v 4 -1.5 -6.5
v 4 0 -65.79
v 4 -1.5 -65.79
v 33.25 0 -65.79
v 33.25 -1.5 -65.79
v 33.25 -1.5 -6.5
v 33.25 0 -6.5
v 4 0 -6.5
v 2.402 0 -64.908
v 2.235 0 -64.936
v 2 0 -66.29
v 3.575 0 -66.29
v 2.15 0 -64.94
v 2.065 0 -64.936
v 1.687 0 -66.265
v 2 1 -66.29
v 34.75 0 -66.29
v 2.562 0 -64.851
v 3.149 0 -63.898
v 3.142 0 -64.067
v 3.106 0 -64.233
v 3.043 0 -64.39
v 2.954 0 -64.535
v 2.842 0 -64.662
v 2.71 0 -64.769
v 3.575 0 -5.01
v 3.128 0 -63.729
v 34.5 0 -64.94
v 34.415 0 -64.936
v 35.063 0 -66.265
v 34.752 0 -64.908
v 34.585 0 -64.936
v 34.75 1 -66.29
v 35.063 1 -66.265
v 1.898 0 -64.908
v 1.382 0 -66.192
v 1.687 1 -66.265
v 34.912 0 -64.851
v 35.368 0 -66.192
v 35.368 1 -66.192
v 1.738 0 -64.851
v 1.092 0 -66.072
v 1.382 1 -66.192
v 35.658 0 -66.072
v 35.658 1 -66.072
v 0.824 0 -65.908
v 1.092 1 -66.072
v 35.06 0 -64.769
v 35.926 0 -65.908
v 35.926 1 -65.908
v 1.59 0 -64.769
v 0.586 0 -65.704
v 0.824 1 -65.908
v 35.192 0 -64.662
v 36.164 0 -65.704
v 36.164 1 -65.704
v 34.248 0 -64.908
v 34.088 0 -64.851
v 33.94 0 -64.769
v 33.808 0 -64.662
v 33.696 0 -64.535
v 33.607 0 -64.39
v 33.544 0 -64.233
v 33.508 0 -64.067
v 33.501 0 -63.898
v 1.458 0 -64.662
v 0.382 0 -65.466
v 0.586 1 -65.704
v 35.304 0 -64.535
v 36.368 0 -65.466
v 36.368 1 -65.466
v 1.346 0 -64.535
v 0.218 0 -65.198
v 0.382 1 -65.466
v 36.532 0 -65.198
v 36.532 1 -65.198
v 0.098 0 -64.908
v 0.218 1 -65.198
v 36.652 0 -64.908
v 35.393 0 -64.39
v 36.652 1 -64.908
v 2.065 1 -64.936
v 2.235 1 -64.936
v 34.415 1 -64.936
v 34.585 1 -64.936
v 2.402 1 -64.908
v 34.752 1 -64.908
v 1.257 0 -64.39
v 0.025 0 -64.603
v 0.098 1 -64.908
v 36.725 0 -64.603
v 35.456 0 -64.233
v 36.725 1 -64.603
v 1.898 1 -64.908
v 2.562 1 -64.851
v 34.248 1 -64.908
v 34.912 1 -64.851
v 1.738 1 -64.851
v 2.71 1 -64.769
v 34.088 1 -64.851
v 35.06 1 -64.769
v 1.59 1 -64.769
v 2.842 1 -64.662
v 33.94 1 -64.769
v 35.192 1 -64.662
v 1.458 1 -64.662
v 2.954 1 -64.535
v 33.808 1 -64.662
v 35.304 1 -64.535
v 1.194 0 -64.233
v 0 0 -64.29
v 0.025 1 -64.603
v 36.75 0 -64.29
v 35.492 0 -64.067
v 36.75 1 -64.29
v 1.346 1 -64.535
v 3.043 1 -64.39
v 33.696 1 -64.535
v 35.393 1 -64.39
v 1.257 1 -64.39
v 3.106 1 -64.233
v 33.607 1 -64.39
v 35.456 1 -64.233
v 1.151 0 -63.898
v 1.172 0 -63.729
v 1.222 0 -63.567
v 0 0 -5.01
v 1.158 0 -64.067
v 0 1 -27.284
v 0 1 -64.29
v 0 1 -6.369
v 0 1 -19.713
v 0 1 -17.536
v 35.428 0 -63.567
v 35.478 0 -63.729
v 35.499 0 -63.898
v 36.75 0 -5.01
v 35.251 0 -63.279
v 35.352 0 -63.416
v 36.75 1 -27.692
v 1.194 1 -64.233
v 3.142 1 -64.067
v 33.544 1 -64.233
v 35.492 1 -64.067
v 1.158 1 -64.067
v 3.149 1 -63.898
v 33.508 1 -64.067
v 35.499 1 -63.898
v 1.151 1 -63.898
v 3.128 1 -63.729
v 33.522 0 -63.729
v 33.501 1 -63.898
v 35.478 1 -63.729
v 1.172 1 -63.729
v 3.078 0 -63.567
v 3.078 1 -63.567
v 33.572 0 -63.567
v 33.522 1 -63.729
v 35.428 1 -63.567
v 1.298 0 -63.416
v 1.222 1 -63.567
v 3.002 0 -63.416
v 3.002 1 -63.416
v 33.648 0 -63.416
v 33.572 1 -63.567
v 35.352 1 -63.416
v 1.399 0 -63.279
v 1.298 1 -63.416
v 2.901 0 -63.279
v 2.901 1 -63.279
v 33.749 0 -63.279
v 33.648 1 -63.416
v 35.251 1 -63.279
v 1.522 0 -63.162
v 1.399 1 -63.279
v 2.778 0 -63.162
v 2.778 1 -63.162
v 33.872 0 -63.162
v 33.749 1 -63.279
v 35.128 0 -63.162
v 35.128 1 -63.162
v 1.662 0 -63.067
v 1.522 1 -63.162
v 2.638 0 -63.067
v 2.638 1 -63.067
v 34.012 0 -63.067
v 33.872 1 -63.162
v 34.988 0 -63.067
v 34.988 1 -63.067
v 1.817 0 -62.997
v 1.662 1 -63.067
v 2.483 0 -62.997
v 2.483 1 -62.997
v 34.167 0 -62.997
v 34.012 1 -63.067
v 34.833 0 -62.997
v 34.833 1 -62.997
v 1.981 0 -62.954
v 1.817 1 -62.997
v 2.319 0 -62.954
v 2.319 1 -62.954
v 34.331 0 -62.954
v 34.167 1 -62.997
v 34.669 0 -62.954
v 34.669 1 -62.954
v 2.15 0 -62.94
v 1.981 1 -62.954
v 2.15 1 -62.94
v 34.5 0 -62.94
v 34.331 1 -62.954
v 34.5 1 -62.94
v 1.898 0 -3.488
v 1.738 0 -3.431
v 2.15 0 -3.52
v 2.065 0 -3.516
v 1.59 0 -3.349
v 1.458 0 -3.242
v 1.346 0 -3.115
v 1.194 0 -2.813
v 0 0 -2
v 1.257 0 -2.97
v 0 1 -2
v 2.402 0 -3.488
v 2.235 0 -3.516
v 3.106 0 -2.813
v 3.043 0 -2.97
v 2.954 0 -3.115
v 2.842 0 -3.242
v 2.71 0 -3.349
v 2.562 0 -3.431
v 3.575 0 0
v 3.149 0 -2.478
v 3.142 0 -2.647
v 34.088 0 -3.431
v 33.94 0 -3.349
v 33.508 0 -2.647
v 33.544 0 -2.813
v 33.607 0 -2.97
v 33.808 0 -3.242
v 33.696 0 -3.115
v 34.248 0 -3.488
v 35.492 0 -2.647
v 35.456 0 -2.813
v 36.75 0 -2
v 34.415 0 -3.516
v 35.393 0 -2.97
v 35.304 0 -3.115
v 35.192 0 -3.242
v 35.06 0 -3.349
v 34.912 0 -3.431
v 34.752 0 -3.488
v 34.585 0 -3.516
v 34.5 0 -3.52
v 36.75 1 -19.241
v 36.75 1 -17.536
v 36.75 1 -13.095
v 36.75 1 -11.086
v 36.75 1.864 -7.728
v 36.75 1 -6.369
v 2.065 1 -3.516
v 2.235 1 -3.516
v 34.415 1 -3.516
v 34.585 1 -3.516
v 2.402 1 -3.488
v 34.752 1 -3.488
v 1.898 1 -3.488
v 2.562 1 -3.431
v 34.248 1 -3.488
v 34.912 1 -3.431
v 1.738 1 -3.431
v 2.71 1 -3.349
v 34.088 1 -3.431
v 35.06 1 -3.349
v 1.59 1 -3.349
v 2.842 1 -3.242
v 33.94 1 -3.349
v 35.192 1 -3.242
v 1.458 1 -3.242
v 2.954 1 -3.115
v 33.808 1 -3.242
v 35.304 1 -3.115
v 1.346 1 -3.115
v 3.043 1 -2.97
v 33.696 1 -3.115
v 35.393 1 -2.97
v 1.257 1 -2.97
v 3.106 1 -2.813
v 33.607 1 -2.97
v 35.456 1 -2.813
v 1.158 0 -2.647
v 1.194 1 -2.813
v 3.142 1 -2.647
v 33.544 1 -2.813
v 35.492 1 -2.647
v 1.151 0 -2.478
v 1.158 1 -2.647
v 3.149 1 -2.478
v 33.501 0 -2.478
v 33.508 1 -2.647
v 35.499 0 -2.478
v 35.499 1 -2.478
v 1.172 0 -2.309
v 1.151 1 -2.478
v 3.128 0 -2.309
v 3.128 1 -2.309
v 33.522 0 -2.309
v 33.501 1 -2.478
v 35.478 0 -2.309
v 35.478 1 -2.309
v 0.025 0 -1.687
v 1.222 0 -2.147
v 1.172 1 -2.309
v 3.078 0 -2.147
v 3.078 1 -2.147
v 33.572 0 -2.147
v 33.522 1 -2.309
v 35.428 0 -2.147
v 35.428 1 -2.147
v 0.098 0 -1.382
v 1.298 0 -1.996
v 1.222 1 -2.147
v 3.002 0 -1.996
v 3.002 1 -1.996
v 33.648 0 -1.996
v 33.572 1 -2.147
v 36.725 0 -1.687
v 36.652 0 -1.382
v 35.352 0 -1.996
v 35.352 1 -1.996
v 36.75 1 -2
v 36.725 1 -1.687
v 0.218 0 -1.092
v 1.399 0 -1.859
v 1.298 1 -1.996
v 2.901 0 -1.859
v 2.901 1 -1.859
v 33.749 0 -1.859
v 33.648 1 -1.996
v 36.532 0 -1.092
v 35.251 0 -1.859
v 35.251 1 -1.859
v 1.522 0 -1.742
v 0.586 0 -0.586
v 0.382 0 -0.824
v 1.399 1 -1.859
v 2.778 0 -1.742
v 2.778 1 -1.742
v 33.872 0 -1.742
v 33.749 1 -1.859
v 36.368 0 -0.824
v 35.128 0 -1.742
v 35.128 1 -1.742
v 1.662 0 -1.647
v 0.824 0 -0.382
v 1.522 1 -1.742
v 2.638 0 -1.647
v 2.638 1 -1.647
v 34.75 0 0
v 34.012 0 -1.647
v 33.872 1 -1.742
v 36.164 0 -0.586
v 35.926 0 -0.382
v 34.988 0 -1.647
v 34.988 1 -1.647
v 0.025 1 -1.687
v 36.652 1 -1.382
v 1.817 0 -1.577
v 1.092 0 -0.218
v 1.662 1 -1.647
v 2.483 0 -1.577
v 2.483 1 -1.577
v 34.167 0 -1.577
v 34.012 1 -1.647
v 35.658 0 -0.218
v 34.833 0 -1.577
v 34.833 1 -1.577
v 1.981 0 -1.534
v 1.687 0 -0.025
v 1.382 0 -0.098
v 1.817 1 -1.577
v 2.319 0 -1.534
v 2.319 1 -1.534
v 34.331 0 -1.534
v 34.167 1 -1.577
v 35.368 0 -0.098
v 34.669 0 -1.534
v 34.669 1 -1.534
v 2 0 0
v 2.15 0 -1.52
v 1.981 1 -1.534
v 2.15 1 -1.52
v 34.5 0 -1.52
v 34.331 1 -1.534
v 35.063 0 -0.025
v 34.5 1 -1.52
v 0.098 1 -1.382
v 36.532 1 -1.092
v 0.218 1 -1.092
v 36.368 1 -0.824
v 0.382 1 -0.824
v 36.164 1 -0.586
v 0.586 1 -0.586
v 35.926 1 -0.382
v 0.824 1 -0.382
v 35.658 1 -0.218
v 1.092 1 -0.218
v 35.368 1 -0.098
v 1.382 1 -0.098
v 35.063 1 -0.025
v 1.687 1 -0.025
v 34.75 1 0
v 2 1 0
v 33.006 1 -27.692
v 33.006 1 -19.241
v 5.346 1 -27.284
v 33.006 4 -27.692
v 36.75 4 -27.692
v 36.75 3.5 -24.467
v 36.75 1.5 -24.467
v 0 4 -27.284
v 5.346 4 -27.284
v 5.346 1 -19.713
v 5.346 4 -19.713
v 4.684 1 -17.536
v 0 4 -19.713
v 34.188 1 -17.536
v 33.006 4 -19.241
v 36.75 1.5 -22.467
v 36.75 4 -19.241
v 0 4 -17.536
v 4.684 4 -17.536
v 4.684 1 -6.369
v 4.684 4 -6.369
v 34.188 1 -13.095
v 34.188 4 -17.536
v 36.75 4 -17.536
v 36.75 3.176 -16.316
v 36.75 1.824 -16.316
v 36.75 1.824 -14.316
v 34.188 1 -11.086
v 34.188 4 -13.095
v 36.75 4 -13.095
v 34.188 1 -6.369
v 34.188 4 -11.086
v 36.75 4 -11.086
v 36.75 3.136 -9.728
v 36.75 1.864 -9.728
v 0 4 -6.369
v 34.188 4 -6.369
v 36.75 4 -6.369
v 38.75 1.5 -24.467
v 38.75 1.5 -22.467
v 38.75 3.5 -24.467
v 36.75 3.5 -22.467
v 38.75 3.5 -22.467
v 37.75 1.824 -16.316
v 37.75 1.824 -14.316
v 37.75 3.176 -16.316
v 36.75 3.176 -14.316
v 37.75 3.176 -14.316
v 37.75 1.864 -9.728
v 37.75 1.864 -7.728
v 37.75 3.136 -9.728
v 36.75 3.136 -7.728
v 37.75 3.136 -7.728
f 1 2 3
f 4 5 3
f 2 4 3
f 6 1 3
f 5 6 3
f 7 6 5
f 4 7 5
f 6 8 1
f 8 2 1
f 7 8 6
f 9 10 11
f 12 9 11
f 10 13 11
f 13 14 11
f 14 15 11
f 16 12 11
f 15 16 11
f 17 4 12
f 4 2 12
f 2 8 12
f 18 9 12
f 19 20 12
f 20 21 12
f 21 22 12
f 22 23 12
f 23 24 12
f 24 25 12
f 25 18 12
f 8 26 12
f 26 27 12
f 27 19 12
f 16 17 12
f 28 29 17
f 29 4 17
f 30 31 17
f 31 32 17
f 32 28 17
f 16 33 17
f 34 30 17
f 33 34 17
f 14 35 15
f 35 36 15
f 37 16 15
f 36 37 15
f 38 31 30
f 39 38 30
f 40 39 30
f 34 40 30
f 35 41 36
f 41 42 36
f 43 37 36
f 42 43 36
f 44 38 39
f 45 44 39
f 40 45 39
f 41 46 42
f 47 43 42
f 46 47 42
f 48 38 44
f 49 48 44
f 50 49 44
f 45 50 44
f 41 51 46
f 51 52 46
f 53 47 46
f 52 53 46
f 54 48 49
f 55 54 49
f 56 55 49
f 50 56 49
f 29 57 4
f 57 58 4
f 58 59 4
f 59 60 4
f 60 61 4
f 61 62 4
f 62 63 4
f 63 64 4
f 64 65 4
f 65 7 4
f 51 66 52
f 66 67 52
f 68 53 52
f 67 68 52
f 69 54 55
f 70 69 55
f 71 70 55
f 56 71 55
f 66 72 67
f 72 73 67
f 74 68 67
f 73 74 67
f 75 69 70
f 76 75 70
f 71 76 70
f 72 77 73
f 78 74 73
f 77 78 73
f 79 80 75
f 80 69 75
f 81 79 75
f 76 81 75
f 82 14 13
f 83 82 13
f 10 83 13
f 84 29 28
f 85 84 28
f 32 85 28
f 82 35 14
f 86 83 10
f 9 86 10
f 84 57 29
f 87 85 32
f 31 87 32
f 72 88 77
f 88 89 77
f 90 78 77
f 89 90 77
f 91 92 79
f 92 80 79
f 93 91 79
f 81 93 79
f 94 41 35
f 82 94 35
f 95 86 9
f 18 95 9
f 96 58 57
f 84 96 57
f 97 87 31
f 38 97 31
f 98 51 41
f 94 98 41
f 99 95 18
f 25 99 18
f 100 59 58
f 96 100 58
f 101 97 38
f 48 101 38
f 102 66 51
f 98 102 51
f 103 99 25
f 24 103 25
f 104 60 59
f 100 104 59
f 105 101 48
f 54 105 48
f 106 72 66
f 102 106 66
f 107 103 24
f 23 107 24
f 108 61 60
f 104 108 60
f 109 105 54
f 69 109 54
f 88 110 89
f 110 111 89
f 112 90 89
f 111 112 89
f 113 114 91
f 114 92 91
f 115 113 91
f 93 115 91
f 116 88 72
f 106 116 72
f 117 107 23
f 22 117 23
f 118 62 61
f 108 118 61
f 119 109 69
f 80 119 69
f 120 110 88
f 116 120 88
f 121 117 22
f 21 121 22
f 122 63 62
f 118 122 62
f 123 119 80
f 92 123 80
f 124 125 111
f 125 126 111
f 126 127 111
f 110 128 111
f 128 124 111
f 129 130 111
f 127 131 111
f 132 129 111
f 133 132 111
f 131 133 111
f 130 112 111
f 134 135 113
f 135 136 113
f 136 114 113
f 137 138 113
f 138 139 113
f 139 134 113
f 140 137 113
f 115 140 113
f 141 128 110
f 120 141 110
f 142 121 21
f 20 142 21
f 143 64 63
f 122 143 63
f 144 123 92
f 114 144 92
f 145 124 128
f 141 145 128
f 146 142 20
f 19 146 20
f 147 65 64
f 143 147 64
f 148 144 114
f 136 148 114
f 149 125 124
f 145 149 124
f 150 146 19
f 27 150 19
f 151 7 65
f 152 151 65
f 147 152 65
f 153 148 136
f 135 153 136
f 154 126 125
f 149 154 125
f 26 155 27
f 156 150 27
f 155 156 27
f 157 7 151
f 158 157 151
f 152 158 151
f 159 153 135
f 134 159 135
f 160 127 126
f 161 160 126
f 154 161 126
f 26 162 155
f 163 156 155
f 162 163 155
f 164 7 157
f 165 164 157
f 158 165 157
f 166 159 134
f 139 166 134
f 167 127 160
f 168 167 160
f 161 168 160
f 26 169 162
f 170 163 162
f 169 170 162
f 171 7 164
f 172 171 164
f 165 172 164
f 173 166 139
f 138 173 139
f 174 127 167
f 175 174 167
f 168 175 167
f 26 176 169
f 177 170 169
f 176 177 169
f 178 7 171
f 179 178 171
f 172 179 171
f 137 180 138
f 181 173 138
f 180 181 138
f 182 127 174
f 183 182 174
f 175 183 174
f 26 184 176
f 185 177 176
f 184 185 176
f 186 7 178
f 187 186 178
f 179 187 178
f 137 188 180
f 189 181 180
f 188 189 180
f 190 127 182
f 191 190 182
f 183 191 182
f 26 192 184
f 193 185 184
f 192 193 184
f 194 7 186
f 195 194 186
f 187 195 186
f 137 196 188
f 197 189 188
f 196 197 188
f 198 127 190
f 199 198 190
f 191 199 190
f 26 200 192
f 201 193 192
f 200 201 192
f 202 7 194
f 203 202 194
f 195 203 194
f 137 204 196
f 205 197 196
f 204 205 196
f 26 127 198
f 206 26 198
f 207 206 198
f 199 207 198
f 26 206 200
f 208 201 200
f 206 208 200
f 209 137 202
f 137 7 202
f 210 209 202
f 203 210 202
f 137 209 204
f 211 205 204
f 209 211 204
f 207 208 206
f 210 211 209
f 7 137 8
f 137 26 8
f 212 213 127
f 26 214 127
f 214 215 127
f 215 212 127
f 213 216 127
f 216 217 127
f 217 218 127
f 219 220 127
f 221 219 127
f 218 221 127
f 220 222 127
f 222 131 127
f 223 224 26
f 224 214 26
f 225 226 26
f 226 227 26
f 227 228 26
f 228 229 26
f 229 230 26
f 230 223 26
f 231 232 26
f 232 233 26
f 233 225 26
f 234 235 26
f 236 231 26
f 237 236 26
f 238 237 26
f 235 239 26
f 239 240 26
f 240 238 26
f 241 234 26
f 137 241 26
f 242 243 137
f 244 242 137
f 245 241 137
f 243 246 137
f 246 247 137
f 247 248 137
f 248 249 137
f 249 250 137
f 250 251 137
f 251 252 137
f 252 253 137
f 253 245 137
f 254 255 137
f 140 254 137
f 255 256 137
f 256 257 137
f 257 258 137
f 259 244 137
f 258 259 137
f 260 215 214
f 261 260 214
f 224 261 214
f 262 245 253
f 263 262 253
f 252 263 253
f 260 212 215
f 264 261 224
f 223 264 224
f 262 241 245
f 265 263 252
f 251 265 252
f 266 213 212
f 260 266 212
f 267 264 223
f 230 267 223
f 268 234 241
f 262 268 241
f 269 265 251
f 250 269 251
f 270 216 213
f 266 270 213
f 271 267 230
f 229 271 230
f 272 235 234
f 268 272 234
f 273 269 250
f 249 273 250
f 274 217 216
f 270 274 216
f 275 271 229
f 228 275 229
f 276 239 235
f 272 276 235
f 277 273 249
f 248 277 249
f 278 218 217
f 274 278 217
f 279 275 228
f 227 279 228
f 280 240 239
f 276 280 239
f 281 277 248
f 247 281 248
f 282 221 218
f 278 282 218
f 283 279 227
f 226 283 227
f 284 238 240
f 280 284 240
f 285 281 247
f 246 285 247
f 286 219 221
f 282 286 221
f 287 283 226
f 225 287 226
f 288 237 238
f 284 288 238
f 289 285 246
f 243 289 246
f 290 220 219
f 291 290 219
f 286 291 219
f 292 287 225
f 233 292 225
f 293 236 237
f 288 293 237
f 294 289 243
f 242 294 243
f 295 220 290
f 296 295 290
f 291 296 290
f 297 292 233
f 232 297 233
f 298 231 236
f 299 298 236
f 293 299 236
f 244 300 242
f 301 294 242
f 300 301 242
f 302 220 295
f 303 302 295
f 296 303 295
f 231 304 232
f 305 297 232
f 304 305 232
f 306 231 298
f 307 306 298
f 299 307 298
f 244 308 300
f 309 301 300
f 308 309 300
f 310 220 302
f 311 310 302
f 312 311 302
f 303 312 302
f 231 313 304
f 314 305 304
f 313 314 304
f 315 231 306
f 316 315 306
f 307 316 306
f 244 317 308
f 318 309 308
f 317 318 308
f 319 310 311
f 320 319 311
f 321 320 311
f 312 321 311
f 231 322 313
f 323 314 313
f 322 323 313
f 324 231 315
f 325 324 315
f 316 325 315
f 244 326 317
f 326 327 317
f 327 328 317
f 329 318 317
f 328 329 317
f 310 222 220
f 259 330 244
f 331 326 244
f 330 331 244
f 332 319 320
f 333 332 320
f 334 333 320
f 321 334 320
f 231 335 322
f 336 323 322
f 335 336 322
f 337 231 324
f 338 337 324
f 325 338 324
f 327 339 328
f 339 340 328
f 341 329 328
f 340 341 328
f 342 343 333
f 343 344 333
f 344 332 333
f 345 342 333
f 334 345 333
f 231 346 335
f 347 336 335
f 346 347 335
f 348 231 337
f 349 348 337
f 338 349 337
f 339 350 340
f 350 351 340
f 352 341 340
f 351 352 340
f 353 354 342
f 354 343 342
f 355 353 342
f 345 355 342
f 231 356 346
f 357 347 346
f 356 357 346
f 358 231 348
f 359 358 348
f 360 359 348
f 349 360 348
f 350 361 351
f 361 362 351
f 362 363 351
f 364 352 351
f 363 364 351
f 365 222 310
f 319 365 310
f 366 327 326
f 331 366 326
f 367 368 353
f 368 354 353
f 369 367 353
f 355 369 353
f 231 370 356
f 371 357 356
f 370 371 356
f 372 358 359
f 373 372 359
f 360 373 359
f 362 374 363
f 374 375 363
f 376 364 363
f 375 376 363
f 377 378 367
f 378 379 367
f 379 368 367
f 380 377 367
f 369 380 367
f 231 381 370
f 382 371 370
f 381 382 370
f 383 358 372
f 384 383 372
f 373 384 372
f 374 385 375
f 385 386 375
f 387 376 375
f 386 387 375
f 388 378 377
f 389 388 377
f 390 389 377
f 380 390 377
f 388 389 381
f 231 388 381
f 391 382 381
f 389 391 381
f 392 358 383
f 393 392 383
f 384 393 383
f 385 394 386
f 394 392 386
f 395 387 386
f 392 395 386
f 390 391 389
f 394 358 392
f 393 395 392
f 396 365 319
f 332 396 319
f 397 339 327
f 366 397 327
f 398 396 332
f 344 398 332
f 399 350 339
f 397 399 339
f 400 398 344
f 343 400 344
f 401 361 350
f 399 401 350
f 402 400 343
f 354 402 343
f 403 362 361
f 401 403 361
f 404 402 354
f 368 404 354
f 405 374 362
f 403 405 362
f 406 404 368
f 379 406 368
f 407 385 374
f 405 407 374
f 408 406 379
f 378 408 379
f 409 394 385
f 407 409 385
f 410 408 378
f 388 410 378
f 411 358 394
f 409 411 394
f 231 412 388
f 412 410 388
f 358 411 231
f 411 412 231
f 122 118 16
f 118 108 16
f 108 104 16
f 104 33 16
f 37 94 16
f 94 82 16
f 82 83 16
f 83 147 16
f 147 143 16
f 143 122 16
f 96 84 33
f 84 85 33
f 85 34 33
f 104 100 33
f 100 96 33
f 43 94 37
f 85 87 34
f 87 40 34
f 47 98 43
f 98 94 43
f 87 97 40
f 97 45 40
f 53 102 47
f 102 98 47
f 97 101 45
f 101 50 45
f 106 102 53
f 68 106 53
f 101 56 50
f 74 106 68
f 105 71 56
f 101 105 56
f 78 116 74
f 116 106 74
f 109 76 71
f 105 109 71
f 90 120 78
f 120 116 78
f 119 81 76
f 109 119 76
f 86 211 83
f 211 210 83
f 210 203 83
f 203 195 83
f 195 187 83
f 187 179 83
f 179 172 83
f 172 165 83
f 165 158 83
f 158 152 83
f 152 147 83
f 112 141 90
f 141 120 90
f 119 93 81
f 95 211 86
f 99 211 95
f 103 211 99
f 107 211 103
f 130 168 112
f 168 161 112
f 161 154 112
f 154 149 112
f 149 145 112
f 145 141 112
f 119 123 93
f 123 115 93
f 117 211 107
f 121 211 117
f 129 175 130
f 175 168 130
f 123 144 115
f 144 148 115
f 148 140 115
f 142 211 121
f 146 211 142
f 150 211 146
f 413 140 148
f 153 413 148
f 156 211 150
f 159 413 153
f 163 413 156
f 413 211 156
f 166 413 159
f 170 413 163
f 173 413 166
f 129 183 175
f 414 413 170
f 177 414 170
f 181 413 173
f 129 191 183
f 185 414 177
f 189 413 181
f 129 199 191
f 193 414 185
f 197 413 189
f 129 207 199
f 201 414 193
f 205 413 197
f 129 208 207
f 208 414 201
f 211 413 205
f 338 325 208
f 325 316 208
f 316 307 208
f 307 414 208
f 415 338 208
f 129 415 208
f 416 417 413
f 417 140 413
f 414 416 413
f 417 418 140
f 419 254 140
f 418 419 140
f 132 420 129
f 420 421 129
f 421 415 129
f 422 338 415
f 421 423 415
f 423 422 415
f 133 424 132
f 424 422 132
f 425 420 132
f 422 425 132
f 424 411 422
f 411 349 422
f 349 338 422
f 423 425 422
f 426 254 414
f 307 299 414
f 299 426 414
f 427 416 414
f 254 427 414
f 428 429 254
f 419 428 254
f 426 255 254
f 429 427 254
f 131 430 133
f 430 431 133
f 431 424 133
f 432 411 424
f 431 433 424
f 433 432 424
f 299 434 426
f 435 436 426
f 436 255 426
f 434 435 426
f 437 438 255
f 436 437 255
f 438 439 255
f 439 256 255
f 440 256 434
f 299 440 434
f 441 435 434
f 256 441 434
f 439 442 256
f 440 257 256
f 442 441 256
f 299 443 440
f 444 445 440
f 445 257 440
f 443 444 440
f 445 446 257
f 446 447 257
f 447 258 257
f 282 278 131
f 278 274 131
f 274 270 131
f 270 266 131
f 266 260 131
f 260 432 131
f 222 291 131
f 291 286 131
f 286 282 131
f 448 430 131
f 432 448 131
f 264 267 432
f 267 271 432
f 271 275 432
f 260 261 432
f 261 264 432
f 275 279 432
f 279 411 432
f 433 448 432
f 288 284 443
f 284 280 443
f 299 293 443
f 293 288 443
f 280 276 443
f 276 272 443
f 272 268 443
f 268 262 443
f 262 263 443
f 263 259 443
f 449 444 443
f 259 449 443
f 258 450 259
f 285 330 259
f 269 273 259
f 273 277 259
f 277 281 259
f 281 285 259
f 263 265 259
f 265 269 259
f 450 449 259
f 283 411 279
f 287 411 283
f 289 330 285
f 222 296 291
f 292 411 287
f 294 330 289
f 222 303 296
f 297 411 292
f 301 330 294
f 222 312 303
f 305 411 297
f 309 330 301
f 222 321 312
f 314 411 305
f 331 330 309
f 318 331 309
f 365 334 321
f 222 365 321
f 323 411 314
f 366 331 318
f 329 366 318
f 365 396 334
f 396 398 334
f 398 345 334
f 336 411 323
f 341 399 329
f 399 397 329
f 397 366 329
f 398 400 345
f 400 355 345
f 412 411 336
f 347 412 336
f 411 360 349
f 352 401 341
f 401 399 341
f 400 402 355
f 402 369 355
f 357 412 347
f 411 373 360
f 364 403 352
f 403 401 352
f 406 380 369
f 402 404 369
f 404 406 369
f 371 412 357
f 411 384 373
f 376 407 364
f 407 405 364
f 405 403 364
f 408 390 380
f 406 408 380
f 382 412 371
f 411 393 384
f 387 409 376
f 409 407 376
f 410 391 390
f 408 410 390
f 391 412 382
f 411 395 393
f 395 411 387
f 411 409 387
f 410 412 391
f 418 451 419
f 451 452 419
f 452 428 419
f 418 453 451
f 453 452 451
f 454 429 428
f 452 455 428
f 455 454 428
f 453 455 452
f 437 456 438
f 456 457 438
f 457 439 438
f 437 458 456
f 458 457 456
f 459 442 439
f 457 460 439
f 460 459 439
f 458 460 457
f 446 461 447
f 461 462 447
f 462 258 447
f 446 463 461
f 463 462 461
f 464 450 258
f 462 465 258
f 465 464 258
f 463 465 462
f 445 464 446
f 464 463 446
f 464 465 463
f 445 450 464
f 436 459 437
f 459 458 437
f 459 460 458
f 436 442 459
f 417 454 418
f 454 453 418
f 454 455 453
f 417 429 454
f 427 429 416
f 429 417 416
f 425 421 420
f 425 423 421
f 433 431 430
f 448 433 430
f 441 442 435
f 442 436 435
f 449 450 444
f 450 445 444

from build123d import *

# Parameters (mm, degrees)
SKETCH5_W           = 36.75
SKETCH5_H           = 66.29
BOSS_EXTRUDE3_DEPTH = 1
FILLET1_R           = 2
FILLET2_R           = 2
SKETCH7_R           = 1
CUT_EXTRUDE1_DEPTH  = 2
SKETCH9_W           = 4.683907435
SKETCH9_H           = 11.166934783
SKETCH9_W_2         = 3.743745131
SKETCH9_H_2         = 8.450578132
SKETCH9_W_3         = 2.561846092
SKETCH9_H_3         = 4.440718541
SKETCH9_H_4         = 4.716987875
SKETCH9_W_4         = 5.346352719
SKETCH9_H_5         = 7.570803243
BOSS_EXTRUDE5_DEPTH = 3
SKETCH11_W          = 2
SKETCH11_H          = 1.271998182
SKETCH11_H_2        = 1.351132692
BOSS_EXTRUDE6_DEPTH = 1
SKETCH12_W          = 2
SKETCH12_H          = 2
BOSS_EXTRUDE7_DEPTH = 2
SKETCH13_W          = 29.25
SKETCH13_H          = 59.29
BOSS_EXTRUDE8_DEPTH = 1.5


with BuildPart() as part:
    # Sketch5 → Boss-Extrude3 (new body)
    with BuildSketch(Plane(origin=(0, 0, 0), x_dir=(1, 0, 0), z_dir=(0, 1, 0))):
        with Locations((18.375, 33.145)):
            Rectangle(SKETCH5_W, SKETCH5_H)
    extrude(amount=BOSS_EXTRUDE3_DEPTH)

    # Fillet1
    fillet1_edges = [part.edges().sort_by_distance(p)[0] for p in [
        (0, 0.5, 0),
    ]]
    fillet(fillet1_edges, radius=FILLET1_R)

    # Fillet2
    fillet2_edges = [part.edges().sort_by_distance(p)[0] for p in [
        (0, 0.5, -66.29),
        (36.75, 0.5, -66.29),
        (36.75, 0.5, 0),
    ]]
    fillet(fillet2_edges, radius=FILLET2_R)

    # Sketch7 → Cut-Extrude1 (cut)
    with BuildSketch(Plane(origin=(0, 1, 0), x_dir=(1, 0, 0), z_dir=(0, 1, 0))):
        with Locations(Location((2.15, 63.94, 0), (0, 0, 270))):
            Circle(SKETCH7_R)
        with Locations(Location((34.5, 63.94, 0), (0, 0, 270))):
            Circle(SKETCH7_R)
        with Locations(Location((2.15, 2.52, 0), (0, 0, 270))):
            Circle(SKETCH7_R)
        with Locations(Location((34.5, 2.52, 0), (0, 0, 270))):
            Circle(SKETCH7_R)
    extrude(amount=-CUT_EXTRUDE1_DEPTH, mode=Mode.SUBTRACT)

    # Sketch9 → Boss-Extrude5 (add)
    with BuildSketch(Plane(origin=(0, 1, 0), x_dir=(1, 0, 0), z_dir=(0, 1, 0))):
        with Locations((2.341953718, 11.952713426)):
            Rectangle(SKETCH9_W, SKETCH9_H)
        with Locations((34.878127435, 23.466626346)):
            Rectangle(SKETCH9_W_2, SKETCH9_H_2)
        with Locations((35.469076954, 15.315821547)):
            Rectangle(SKETCH9_W_3, SKETCH9_H_3)
        with Locations((35.469076954, 8.727739972)):
            Rectangle(SKETCH9_W_3, SKETCH9_H_4)
        with Locations((2.67317636, 23.498188372)):
            Rectangle(SKETCH9_W_4, SKETCH9_H_5)
    extrude(amount=BOSS_EXTRUDE5_DEPTH)

    # Sketch11 → Boss-Extrude6 (add)
    with BuildSketch(Plane(origin=(36.75, 0, 0), x_dir=(0, 0, -1), z_dir=(1, 0, 0))):
        with Locations((8.727739971, 2.5)):
            Rectangle(SKETCH11_W, SKETCH11_H)
        with Locations((15.315821546, 2.5)):
            Rectangle(SKETCH11_W, SKETCH11_H_2)
    extrude(amount=BOSS_EXTRUDE6_DEPTH)

    # Sketch12 → Boss-Extrude7 (add)
    with BuildSketch(Plane(origin=(36.75, 0, 0), x_dir=(0, 0, -1), z_dir=(1, 0, 0))):
        with Locations((23.466626346, 2.5)):
            Rectangle(SKETCH12_W, SKETCH12_H)
    extrude(amount=BOSS_EXTRUDE7_DEPTH)

    # Sketch13 → Boss-Extrude8 (add)
    with BuildSketch(Plane.XZ):
        with Locations((18.625, -36.145)):
            Rectangle(SKETCH13_W, SKETCH13_H)
    extrude(amount=BOSS_EXTRUDE8_DEPTH)


solid = part.part
